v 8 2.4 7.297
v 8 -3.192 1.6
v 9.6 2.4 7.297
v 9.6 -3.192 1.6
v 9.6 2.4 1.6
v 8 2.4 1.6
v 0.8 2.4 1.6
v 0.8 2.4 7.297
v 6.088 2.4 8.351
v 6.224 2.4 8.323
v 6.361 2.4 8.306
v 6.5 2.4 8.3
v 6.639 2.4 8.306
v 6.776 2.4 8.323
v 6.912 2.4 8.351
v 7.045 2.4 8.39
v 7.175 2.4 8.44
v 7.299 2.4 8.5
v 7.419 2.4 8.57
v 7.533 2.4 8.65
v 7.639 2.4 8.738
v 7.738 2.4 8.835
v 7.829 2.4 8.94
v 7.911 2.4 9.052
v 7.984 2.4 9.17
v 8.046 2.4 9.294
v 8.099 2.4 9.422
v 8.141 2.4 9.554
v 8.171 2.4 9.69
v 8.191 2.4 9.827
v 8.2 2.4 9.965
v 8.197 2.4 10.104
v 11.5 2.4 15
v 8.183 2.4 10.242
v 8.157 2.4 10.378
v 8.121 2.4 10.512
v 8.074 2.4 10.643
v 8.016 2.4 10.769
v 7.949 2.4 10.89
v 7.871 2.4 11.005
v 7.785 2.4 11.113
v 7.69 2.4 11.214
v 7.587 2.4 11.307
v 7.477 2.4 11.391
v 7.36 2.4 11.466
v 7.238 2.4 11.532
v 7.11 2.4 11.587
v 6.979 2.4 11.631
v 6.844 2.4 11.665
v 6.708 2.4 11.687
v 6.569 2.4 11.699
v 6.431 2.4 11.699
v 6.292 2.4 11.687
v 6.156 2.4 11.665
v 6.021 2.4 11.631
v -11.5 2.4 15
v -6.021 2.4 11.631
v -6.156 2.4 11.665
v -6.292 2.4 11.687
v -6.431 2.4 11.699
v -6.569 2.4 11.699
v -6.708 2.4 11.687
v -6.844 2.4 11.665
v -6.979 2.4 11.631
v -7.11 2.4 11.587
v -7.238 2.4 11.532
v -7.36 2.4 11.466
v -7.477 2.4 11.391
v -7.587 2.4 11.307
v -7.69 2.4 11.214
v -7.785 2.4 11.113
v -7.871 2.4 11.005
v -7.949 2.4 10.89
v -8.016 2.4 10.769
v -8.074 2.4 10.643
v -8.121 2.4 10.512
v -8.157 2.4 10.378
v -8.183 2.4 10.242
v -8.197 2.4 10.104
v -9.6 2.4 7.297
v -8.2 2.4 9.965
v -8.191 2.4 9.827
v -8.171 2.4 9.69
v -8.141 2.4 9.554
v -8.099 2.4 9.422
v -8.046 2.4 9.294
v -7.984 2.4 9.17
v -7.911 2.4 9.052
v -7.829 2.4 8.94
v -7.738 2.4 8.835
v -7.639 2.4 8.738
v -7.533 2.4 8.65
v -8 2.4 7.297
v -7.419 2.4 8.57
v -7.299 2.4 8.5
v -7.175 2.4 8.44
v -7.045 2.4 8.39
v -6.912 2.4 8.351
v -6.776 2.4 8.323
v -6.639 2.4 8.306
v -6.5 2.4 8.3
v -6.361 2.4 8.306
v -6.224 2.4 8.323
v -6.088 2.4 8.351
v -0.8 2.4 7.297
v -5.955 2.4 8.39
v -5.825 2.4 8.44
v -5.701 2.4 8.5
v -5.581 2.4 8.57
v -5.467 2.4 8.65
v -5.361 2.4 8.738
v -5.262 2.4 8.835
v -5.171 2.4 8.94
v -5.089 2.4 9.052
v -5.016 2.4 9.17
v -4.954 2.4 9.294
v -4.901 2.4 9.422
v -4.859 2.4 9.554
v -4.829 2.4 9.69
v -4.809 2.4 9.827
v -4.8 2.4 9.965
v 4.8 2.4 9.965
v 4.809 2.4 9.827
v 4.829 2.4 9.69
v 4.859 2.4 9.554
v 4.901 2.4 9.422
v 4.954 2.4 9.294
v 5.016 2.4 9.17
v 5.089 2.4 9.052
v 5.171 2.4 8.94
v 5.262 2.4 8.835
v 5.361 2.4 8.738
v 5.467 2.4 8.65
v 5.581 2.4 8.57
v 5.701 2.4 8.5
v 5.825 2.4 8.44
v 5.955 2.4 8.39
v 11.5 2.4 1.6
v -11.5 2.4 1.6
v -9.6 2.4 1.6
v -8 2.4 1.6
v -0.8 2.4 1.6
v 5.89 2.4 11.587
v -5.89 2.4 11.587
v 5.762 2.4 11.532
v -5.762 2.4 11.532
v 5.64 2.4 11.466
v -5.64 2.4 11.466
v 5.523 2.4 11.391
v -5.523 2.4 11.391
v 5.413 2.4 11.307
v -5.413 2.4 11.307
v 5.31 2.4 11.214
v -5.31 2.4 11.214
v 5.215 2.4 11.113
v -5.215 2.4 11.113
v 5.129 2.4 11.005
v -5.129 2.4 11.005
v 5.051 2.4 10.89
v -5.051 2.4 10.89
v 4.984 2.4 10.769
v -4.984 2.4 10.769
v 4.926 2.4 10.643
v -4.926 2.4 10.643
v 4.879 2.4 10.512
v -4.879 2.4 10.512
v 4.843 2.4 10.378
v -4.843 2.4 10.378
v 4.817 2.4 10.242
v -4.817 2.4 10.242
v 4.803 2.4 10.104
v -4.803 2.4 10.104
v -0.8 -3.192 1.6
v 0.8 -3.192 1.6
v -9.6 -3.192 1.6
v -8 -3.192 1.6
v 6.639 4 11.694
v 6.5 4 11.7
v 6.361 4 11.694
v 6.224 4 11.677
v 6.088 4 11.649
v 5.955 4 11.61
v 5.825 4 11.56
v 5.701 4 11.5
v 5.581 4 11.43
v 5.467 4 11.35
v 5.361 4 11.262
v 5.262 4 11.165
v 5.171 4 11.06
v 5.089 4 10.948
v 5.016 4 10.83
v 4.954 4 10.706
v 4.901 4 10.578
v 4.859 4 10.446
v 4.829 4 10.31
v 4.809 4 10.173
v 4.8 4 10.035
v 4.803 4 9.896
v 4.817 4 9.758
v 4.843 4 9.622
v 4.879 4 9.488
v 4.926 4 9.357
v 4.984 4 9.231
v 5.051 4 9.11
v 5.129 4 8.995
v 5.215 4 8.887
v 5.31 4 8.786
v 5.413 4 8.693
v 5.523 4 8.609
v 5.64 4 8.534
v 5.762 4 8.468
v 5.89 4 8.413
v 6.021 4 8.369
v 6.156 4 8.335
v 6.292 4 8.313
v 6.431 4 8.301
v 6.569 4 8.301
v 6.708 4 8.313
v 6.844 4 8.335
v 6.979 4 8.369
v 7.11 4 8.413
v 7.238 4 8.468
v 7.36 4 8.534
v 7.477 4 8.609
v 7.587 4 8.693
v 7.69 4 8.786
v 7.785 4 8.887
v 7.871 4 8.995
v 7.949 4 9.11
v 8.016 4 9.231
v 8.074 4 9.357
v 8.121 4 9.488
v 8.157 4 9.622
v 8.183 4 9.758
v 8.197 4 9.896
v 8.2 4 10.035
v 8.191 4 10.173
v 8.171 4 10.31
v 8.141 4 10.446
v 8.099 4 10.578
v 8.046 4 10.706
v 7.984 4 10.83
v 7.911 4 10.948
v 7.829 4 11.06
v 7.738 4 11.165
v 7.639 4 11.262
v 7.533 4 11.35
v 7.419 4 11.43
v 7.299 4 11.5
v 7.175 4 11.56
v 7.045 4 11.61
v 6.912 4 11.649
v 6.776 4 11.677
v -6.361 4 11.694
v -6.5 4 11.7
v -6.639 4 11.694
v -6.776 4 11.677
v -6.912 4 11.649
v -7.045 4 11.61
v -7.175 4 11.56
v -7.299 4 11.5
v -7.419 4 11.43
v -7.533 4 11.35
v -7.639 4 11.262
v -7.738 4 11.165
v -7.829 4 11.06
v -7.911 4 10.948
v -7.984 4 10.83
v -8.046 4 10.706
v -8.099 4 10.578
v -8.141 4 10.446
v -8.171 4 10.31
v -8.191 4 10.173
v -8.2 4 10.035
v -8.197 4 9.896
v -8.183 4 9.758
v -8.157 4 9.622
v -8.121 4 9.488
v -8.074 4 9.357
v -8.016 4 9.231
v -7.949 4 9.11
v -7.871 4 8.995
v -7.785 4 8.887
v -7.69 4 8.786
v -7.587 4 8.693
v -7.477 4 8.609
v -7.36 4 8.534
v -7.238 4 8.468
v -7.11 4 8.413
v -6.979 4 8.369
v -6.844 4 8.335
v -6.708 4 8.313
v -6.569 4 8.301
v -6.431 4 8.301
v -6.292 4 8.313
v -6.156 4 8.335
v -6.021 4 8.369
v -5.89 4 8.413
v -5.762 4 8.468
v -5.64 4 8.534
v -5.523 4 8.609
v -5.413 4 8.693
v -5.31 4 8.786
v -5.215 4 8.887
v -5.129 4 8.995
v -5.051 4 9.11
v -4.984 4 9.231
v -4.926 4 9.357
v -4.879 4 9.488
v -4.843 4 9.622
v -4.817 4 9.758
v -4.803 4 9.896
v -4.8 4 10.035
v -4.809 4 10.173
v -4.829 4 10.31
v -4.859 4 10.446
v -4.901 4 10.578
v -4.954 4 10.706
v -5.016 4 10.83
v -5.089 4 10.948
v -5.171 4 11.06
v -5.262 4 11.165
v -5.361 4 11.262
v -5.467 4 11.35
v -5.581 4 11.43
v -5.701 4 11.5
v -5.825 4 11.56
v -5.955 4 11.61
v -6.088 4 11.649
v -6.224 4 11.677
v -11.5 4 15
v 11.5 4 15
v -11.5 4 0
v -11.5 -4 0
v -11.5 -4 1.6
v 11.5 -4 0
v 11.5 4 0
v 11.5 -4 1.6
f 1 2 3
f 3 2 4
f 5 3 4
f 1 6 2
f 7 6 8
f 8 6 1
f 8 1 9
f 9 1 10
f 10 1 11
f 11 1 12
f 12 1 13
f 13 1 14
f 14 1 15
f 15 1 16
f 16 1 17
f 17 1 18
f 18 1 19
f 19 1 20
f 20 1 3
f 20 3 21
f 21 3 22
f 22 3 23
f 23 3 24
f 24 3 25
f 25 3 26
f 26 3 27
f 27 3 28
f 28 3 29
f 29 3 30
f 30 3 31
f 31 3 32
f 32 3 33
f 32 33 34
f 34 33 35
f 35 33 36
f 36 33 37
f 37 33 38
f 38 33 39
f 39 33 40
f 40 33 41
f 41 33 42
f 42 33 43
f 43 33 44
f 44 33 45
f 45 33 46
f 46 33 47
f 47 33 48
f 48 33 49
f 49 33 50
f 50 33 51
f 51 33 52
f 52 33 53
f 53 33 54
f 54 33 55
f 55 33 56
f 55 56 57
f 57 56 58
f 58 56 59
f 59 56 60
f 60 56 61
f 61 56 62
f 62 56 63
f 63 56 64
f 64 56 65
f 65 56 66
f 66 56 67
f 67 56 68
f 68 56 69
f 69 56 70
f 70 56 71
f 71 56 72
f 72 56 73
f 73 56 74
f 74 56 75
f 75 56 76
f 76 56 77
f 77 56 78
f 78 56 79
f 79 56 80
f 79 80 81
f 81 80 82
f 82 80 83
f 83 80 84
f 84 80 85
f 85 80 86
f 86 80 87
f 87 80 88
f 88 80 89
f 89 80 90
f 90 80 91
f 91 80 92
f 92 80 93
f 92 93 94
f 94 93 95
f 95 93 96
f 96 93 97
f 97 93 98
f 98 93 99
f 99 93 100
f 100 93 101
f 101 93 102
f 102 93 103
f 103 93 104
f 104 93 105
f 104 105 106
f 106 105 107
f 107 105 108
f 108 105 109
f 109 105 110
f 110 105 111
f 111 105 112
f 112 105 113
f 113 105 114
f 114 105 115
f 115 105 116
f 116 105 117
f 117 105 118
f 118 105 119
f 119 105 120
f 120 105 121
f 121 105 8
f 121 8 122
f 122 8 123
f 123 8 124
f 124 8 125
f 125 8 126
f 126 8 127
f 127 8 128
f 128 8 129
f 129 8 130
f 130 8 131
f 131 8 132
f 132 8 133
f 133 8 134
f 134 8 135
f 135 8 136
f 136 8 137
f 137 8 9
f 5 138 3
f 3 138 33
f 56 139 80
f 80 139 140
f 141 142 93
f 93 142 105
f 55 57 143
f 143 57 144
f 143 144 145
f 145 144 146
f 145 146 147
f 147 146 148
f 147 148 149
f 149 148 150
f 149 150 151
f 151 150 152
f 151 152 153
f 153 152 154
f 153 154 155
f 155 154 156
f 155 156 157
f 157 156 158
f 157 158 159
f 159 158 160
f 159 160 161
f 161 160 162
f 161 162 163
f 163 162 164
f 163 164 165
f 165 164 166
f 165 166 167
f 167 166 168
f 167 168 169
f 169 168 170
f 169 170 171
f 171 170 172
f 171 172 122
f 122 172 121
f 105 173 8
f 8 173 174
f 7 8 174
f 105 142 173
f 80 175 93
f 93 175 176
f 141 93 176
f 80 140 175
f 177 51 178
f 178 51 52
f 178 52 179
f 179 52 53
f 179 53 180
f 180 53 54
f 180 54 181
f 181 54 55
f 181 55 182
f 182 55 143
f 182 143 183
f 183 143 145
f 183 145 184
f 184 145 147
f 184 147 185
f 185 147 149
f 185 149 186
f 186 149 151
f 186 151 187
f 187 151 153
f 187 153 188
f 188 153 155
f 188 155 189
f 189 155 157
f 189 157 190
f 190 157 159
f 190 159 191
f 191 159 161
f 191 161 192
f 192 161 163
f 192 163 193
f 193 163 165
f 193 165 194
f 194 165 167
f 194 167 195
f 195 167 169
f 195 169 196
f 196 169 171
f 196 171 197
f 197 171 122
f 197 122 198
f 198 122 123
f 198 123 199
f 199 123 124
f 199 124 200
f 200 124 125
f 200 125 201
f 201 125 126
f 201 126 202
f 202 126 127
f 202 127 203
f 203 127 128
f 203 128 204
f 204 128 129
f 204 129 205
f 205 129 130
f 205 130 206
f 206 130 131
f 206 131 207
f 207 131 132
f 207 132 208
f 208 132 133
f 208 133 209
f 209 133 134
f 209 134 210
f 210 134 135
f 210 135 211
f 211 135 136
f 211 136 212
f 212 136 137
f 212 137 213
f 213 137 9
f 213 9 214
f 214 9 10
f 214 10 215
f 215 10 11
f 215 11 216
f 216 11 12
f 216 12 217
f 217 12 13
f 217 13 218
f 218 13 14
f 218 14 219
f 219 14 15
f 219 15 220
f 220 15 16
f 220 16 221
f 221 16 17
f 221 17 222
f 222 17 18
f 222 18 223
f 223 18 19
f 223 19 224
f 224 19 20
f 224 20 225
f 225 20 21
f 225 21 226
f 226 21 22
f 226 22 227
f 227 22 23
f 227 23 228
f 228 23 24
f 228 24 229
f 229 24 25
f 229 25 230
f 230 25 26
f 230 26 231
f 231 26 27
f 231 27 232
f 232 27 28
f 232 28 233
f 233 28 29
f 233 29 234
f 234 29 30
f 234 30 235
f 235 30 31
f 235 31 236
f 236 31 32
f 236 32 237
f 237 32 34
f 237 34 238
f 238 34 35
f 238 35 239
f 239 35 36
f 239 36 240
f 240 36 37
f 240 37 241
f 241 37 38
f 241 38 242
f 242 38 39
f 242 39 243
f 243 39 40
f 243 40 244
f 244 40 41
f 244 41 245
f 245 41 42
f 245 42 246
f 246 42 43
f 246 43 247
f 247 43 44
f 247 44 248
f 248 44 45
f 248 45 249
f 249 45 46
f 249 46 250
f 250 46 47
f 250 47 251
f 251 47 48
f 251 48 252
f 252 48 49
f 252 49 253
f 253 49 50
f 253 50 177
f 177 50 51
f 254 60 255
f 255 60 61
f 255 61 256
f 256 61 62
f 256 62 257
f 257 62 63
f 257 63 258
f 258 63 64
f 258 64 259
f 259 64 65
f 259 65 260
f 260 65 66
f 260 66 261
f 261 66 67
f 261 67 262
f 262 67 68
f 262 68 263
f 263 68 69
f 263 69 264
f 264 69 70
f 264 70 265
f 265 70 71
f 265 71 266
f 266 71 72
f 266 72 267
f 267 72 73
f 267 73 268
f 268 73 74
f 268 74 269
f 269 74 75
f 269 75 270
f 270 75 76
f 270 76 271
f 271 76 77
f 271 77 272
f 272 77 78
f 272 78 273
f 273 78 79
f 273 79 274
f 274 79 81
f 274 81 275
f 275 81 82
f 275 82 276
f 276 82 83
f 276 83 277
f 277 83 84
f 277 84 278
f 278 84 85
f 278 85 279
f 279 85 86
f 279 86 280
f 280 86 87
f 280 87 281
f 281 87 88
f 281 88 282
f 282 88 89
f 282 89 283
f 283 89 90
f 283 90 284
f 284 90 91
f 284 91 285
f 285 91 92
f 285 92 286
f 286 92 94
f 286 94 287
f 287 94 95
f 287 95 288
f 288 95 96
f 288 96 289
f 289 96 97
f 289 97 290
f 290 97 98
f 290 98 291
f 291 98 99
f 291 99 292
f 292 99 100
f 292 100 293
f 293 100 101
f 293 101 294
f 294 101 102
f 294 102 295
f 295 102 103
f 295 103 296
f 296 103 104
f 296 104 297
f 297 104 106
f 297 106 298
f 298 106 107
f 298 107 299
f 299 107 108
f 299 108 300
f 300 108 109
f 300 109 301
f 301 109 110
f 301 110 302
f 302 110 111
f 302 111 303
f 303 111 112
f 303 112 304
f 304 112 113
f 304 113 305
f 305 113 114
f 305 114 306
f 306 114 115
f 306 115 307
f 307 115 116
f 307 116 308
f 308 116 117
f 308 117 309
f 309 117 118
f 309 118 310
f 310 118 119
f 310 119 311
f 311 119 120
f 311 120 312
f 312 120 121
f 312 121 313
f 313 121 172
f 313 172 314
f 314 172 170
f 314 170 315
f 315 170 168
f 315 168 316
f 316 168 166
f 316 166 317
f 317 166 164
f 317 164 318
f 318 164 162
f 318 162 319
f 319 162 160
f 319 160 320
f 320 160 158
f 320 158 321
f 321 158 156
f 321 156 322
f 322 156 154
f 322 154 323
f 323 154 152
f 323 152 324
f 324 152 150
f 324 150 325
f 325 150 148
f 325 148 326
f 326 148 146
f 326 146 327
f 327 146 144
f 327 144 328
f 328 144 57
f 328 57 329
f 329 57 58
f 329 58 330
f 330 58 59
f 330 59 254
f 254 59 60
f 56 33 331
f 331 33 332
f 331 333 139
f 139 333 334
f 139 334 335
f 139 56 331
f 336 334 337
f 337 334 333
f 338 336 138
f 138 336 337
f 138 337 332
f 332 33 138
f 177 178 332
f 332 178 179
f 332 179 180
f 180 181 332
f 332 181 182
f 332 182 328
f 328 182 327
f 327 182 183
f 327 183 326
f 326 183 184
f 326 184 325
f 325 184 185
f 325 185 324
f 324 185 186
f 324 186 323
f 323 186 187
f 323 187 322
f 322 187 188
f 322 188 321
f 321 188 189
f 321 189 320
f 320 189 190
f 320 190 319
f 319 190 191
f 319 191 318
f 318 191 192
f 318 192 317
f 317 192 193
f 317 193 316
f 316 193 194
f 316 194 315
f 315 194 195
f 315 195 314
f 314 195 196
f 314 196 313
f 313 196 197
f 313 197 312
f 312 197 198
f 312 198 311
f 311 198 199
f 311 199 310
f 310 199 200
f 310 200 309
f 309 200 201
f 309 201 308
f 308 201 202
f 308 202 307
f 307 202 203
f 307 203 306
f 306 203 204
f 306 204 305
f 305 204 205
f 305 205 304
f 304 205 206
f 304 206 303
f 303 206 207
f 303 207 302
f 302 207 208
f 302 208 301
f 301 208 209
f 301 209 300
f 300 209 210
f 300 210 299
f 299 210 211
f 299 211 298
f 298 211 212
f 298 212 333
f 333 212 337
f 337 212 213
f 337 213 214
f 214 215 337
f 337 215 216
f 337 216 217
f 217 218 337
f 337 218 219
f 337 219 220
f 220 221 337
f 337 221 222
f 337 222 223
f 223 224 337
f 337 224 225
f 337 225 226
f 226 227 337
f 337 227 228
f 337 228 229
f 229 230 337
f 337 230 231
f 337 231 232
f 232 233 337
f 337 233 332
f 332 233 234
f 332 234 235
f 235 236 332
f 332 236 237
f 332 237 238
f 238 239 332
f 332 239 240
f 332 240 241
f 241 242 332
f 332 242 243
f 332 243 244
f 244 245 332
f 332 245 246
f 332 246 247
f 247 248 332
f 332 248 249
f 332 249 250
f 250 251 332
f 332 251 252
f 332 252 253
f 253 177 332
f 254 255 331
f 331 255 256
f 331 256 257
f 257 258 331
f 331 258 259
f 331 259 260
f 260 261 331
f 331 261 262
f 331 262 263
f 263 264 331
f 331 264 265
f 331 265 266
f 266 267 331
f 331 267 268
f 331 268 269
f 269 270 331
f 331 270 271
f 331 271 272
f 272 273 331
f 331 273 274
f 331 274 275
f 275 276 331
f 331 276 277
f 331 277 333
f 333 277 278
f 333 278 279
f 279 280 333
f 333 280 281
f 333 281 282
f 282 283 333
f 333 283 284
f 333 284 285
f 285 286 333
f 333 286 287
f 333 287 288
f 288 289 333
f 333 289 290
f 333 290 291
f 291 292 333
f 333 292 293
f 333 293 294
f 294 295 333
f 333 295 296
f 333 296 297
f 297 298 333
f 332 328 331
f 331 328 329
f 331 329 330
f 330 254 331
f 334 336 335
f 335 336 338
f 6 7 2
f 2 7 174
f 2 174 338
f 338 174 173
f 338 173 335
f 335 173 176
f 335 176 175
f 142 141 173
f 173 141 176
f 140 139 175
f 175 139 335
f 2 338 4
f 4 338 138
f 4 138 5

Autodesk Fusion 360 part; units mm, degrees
sketch "Sketch1" plane through (0, 0, 0) normal (0, 0, 1) x (1, 0, 0)
  line L0 (11.5, 4) -> (-11.5, 4)
  line L1 (-11.5, 4) -> (-11.5, -4)
  line L2 (-11.5, -4) -> (11.5, -4)
  line L3 (11.5, -4) -> (11.5, 4)
  line L4 (11.5, 4) -> (-11.5, -4) construction
  line L5 (-11.5, 4) -> (11.5, -4) construction
  line L6 (-11.5, 4) -> (11.5, 4)
  line L7 (11.5, 4) -> (11.5, 2.4)
  line L8 (11.5, 2.4) -> (-11.5, 2.4)
  line L9 (-11.5, 2.4) -> (-11.5, 4)
  dimension "d1" = 23
  dimension "d2" = 8
  dimension "d3" = 1.6
extrude "Extrude1" add sketch "Sketch1" along normal blind 1.6
extrude "Extrude2" add sketch "Sketch1" along normal blind 15 contours L0 L1 L3 L6 L7 L8 L9
hole "Hole1" at (-6.5, 2.4, 10) direction (0, 1, 0) diameter 3.4 depth 9 tip angle 118
hole "Hole2" at (6.5, 2.4, 10) direction (0, 1, 0) diameter 3.4 depth 12 tip angle 118
sketch "Sketch2" plane through (0, 0, 0) normal (1, 0, 0) x (0, 1, 0)
  line L0 (2.4, 1.6) -> (-4, 1.6)
  line L1 (-4, 1.6) -> (2.4, 1.6)
  line L2 (2.4, 1.6) -> (2.4, 15)
  line L3 (-3.1915, 1.6) -> (2.4, 7.2966)
  line L4 (2.4, 1.6) -> (-3.1915, 1.6)
extrude "Extrude3" add sketch "Sketch2" along normal blind 1.6 from surface at -9.6
extrude "Extrude4" add sketch "Sketch2" along normal blind 1.6 from surface at -0.8
extrude "Extrude5" add sketch "Sketch2" along normal blind 1.6 from surface at 8
